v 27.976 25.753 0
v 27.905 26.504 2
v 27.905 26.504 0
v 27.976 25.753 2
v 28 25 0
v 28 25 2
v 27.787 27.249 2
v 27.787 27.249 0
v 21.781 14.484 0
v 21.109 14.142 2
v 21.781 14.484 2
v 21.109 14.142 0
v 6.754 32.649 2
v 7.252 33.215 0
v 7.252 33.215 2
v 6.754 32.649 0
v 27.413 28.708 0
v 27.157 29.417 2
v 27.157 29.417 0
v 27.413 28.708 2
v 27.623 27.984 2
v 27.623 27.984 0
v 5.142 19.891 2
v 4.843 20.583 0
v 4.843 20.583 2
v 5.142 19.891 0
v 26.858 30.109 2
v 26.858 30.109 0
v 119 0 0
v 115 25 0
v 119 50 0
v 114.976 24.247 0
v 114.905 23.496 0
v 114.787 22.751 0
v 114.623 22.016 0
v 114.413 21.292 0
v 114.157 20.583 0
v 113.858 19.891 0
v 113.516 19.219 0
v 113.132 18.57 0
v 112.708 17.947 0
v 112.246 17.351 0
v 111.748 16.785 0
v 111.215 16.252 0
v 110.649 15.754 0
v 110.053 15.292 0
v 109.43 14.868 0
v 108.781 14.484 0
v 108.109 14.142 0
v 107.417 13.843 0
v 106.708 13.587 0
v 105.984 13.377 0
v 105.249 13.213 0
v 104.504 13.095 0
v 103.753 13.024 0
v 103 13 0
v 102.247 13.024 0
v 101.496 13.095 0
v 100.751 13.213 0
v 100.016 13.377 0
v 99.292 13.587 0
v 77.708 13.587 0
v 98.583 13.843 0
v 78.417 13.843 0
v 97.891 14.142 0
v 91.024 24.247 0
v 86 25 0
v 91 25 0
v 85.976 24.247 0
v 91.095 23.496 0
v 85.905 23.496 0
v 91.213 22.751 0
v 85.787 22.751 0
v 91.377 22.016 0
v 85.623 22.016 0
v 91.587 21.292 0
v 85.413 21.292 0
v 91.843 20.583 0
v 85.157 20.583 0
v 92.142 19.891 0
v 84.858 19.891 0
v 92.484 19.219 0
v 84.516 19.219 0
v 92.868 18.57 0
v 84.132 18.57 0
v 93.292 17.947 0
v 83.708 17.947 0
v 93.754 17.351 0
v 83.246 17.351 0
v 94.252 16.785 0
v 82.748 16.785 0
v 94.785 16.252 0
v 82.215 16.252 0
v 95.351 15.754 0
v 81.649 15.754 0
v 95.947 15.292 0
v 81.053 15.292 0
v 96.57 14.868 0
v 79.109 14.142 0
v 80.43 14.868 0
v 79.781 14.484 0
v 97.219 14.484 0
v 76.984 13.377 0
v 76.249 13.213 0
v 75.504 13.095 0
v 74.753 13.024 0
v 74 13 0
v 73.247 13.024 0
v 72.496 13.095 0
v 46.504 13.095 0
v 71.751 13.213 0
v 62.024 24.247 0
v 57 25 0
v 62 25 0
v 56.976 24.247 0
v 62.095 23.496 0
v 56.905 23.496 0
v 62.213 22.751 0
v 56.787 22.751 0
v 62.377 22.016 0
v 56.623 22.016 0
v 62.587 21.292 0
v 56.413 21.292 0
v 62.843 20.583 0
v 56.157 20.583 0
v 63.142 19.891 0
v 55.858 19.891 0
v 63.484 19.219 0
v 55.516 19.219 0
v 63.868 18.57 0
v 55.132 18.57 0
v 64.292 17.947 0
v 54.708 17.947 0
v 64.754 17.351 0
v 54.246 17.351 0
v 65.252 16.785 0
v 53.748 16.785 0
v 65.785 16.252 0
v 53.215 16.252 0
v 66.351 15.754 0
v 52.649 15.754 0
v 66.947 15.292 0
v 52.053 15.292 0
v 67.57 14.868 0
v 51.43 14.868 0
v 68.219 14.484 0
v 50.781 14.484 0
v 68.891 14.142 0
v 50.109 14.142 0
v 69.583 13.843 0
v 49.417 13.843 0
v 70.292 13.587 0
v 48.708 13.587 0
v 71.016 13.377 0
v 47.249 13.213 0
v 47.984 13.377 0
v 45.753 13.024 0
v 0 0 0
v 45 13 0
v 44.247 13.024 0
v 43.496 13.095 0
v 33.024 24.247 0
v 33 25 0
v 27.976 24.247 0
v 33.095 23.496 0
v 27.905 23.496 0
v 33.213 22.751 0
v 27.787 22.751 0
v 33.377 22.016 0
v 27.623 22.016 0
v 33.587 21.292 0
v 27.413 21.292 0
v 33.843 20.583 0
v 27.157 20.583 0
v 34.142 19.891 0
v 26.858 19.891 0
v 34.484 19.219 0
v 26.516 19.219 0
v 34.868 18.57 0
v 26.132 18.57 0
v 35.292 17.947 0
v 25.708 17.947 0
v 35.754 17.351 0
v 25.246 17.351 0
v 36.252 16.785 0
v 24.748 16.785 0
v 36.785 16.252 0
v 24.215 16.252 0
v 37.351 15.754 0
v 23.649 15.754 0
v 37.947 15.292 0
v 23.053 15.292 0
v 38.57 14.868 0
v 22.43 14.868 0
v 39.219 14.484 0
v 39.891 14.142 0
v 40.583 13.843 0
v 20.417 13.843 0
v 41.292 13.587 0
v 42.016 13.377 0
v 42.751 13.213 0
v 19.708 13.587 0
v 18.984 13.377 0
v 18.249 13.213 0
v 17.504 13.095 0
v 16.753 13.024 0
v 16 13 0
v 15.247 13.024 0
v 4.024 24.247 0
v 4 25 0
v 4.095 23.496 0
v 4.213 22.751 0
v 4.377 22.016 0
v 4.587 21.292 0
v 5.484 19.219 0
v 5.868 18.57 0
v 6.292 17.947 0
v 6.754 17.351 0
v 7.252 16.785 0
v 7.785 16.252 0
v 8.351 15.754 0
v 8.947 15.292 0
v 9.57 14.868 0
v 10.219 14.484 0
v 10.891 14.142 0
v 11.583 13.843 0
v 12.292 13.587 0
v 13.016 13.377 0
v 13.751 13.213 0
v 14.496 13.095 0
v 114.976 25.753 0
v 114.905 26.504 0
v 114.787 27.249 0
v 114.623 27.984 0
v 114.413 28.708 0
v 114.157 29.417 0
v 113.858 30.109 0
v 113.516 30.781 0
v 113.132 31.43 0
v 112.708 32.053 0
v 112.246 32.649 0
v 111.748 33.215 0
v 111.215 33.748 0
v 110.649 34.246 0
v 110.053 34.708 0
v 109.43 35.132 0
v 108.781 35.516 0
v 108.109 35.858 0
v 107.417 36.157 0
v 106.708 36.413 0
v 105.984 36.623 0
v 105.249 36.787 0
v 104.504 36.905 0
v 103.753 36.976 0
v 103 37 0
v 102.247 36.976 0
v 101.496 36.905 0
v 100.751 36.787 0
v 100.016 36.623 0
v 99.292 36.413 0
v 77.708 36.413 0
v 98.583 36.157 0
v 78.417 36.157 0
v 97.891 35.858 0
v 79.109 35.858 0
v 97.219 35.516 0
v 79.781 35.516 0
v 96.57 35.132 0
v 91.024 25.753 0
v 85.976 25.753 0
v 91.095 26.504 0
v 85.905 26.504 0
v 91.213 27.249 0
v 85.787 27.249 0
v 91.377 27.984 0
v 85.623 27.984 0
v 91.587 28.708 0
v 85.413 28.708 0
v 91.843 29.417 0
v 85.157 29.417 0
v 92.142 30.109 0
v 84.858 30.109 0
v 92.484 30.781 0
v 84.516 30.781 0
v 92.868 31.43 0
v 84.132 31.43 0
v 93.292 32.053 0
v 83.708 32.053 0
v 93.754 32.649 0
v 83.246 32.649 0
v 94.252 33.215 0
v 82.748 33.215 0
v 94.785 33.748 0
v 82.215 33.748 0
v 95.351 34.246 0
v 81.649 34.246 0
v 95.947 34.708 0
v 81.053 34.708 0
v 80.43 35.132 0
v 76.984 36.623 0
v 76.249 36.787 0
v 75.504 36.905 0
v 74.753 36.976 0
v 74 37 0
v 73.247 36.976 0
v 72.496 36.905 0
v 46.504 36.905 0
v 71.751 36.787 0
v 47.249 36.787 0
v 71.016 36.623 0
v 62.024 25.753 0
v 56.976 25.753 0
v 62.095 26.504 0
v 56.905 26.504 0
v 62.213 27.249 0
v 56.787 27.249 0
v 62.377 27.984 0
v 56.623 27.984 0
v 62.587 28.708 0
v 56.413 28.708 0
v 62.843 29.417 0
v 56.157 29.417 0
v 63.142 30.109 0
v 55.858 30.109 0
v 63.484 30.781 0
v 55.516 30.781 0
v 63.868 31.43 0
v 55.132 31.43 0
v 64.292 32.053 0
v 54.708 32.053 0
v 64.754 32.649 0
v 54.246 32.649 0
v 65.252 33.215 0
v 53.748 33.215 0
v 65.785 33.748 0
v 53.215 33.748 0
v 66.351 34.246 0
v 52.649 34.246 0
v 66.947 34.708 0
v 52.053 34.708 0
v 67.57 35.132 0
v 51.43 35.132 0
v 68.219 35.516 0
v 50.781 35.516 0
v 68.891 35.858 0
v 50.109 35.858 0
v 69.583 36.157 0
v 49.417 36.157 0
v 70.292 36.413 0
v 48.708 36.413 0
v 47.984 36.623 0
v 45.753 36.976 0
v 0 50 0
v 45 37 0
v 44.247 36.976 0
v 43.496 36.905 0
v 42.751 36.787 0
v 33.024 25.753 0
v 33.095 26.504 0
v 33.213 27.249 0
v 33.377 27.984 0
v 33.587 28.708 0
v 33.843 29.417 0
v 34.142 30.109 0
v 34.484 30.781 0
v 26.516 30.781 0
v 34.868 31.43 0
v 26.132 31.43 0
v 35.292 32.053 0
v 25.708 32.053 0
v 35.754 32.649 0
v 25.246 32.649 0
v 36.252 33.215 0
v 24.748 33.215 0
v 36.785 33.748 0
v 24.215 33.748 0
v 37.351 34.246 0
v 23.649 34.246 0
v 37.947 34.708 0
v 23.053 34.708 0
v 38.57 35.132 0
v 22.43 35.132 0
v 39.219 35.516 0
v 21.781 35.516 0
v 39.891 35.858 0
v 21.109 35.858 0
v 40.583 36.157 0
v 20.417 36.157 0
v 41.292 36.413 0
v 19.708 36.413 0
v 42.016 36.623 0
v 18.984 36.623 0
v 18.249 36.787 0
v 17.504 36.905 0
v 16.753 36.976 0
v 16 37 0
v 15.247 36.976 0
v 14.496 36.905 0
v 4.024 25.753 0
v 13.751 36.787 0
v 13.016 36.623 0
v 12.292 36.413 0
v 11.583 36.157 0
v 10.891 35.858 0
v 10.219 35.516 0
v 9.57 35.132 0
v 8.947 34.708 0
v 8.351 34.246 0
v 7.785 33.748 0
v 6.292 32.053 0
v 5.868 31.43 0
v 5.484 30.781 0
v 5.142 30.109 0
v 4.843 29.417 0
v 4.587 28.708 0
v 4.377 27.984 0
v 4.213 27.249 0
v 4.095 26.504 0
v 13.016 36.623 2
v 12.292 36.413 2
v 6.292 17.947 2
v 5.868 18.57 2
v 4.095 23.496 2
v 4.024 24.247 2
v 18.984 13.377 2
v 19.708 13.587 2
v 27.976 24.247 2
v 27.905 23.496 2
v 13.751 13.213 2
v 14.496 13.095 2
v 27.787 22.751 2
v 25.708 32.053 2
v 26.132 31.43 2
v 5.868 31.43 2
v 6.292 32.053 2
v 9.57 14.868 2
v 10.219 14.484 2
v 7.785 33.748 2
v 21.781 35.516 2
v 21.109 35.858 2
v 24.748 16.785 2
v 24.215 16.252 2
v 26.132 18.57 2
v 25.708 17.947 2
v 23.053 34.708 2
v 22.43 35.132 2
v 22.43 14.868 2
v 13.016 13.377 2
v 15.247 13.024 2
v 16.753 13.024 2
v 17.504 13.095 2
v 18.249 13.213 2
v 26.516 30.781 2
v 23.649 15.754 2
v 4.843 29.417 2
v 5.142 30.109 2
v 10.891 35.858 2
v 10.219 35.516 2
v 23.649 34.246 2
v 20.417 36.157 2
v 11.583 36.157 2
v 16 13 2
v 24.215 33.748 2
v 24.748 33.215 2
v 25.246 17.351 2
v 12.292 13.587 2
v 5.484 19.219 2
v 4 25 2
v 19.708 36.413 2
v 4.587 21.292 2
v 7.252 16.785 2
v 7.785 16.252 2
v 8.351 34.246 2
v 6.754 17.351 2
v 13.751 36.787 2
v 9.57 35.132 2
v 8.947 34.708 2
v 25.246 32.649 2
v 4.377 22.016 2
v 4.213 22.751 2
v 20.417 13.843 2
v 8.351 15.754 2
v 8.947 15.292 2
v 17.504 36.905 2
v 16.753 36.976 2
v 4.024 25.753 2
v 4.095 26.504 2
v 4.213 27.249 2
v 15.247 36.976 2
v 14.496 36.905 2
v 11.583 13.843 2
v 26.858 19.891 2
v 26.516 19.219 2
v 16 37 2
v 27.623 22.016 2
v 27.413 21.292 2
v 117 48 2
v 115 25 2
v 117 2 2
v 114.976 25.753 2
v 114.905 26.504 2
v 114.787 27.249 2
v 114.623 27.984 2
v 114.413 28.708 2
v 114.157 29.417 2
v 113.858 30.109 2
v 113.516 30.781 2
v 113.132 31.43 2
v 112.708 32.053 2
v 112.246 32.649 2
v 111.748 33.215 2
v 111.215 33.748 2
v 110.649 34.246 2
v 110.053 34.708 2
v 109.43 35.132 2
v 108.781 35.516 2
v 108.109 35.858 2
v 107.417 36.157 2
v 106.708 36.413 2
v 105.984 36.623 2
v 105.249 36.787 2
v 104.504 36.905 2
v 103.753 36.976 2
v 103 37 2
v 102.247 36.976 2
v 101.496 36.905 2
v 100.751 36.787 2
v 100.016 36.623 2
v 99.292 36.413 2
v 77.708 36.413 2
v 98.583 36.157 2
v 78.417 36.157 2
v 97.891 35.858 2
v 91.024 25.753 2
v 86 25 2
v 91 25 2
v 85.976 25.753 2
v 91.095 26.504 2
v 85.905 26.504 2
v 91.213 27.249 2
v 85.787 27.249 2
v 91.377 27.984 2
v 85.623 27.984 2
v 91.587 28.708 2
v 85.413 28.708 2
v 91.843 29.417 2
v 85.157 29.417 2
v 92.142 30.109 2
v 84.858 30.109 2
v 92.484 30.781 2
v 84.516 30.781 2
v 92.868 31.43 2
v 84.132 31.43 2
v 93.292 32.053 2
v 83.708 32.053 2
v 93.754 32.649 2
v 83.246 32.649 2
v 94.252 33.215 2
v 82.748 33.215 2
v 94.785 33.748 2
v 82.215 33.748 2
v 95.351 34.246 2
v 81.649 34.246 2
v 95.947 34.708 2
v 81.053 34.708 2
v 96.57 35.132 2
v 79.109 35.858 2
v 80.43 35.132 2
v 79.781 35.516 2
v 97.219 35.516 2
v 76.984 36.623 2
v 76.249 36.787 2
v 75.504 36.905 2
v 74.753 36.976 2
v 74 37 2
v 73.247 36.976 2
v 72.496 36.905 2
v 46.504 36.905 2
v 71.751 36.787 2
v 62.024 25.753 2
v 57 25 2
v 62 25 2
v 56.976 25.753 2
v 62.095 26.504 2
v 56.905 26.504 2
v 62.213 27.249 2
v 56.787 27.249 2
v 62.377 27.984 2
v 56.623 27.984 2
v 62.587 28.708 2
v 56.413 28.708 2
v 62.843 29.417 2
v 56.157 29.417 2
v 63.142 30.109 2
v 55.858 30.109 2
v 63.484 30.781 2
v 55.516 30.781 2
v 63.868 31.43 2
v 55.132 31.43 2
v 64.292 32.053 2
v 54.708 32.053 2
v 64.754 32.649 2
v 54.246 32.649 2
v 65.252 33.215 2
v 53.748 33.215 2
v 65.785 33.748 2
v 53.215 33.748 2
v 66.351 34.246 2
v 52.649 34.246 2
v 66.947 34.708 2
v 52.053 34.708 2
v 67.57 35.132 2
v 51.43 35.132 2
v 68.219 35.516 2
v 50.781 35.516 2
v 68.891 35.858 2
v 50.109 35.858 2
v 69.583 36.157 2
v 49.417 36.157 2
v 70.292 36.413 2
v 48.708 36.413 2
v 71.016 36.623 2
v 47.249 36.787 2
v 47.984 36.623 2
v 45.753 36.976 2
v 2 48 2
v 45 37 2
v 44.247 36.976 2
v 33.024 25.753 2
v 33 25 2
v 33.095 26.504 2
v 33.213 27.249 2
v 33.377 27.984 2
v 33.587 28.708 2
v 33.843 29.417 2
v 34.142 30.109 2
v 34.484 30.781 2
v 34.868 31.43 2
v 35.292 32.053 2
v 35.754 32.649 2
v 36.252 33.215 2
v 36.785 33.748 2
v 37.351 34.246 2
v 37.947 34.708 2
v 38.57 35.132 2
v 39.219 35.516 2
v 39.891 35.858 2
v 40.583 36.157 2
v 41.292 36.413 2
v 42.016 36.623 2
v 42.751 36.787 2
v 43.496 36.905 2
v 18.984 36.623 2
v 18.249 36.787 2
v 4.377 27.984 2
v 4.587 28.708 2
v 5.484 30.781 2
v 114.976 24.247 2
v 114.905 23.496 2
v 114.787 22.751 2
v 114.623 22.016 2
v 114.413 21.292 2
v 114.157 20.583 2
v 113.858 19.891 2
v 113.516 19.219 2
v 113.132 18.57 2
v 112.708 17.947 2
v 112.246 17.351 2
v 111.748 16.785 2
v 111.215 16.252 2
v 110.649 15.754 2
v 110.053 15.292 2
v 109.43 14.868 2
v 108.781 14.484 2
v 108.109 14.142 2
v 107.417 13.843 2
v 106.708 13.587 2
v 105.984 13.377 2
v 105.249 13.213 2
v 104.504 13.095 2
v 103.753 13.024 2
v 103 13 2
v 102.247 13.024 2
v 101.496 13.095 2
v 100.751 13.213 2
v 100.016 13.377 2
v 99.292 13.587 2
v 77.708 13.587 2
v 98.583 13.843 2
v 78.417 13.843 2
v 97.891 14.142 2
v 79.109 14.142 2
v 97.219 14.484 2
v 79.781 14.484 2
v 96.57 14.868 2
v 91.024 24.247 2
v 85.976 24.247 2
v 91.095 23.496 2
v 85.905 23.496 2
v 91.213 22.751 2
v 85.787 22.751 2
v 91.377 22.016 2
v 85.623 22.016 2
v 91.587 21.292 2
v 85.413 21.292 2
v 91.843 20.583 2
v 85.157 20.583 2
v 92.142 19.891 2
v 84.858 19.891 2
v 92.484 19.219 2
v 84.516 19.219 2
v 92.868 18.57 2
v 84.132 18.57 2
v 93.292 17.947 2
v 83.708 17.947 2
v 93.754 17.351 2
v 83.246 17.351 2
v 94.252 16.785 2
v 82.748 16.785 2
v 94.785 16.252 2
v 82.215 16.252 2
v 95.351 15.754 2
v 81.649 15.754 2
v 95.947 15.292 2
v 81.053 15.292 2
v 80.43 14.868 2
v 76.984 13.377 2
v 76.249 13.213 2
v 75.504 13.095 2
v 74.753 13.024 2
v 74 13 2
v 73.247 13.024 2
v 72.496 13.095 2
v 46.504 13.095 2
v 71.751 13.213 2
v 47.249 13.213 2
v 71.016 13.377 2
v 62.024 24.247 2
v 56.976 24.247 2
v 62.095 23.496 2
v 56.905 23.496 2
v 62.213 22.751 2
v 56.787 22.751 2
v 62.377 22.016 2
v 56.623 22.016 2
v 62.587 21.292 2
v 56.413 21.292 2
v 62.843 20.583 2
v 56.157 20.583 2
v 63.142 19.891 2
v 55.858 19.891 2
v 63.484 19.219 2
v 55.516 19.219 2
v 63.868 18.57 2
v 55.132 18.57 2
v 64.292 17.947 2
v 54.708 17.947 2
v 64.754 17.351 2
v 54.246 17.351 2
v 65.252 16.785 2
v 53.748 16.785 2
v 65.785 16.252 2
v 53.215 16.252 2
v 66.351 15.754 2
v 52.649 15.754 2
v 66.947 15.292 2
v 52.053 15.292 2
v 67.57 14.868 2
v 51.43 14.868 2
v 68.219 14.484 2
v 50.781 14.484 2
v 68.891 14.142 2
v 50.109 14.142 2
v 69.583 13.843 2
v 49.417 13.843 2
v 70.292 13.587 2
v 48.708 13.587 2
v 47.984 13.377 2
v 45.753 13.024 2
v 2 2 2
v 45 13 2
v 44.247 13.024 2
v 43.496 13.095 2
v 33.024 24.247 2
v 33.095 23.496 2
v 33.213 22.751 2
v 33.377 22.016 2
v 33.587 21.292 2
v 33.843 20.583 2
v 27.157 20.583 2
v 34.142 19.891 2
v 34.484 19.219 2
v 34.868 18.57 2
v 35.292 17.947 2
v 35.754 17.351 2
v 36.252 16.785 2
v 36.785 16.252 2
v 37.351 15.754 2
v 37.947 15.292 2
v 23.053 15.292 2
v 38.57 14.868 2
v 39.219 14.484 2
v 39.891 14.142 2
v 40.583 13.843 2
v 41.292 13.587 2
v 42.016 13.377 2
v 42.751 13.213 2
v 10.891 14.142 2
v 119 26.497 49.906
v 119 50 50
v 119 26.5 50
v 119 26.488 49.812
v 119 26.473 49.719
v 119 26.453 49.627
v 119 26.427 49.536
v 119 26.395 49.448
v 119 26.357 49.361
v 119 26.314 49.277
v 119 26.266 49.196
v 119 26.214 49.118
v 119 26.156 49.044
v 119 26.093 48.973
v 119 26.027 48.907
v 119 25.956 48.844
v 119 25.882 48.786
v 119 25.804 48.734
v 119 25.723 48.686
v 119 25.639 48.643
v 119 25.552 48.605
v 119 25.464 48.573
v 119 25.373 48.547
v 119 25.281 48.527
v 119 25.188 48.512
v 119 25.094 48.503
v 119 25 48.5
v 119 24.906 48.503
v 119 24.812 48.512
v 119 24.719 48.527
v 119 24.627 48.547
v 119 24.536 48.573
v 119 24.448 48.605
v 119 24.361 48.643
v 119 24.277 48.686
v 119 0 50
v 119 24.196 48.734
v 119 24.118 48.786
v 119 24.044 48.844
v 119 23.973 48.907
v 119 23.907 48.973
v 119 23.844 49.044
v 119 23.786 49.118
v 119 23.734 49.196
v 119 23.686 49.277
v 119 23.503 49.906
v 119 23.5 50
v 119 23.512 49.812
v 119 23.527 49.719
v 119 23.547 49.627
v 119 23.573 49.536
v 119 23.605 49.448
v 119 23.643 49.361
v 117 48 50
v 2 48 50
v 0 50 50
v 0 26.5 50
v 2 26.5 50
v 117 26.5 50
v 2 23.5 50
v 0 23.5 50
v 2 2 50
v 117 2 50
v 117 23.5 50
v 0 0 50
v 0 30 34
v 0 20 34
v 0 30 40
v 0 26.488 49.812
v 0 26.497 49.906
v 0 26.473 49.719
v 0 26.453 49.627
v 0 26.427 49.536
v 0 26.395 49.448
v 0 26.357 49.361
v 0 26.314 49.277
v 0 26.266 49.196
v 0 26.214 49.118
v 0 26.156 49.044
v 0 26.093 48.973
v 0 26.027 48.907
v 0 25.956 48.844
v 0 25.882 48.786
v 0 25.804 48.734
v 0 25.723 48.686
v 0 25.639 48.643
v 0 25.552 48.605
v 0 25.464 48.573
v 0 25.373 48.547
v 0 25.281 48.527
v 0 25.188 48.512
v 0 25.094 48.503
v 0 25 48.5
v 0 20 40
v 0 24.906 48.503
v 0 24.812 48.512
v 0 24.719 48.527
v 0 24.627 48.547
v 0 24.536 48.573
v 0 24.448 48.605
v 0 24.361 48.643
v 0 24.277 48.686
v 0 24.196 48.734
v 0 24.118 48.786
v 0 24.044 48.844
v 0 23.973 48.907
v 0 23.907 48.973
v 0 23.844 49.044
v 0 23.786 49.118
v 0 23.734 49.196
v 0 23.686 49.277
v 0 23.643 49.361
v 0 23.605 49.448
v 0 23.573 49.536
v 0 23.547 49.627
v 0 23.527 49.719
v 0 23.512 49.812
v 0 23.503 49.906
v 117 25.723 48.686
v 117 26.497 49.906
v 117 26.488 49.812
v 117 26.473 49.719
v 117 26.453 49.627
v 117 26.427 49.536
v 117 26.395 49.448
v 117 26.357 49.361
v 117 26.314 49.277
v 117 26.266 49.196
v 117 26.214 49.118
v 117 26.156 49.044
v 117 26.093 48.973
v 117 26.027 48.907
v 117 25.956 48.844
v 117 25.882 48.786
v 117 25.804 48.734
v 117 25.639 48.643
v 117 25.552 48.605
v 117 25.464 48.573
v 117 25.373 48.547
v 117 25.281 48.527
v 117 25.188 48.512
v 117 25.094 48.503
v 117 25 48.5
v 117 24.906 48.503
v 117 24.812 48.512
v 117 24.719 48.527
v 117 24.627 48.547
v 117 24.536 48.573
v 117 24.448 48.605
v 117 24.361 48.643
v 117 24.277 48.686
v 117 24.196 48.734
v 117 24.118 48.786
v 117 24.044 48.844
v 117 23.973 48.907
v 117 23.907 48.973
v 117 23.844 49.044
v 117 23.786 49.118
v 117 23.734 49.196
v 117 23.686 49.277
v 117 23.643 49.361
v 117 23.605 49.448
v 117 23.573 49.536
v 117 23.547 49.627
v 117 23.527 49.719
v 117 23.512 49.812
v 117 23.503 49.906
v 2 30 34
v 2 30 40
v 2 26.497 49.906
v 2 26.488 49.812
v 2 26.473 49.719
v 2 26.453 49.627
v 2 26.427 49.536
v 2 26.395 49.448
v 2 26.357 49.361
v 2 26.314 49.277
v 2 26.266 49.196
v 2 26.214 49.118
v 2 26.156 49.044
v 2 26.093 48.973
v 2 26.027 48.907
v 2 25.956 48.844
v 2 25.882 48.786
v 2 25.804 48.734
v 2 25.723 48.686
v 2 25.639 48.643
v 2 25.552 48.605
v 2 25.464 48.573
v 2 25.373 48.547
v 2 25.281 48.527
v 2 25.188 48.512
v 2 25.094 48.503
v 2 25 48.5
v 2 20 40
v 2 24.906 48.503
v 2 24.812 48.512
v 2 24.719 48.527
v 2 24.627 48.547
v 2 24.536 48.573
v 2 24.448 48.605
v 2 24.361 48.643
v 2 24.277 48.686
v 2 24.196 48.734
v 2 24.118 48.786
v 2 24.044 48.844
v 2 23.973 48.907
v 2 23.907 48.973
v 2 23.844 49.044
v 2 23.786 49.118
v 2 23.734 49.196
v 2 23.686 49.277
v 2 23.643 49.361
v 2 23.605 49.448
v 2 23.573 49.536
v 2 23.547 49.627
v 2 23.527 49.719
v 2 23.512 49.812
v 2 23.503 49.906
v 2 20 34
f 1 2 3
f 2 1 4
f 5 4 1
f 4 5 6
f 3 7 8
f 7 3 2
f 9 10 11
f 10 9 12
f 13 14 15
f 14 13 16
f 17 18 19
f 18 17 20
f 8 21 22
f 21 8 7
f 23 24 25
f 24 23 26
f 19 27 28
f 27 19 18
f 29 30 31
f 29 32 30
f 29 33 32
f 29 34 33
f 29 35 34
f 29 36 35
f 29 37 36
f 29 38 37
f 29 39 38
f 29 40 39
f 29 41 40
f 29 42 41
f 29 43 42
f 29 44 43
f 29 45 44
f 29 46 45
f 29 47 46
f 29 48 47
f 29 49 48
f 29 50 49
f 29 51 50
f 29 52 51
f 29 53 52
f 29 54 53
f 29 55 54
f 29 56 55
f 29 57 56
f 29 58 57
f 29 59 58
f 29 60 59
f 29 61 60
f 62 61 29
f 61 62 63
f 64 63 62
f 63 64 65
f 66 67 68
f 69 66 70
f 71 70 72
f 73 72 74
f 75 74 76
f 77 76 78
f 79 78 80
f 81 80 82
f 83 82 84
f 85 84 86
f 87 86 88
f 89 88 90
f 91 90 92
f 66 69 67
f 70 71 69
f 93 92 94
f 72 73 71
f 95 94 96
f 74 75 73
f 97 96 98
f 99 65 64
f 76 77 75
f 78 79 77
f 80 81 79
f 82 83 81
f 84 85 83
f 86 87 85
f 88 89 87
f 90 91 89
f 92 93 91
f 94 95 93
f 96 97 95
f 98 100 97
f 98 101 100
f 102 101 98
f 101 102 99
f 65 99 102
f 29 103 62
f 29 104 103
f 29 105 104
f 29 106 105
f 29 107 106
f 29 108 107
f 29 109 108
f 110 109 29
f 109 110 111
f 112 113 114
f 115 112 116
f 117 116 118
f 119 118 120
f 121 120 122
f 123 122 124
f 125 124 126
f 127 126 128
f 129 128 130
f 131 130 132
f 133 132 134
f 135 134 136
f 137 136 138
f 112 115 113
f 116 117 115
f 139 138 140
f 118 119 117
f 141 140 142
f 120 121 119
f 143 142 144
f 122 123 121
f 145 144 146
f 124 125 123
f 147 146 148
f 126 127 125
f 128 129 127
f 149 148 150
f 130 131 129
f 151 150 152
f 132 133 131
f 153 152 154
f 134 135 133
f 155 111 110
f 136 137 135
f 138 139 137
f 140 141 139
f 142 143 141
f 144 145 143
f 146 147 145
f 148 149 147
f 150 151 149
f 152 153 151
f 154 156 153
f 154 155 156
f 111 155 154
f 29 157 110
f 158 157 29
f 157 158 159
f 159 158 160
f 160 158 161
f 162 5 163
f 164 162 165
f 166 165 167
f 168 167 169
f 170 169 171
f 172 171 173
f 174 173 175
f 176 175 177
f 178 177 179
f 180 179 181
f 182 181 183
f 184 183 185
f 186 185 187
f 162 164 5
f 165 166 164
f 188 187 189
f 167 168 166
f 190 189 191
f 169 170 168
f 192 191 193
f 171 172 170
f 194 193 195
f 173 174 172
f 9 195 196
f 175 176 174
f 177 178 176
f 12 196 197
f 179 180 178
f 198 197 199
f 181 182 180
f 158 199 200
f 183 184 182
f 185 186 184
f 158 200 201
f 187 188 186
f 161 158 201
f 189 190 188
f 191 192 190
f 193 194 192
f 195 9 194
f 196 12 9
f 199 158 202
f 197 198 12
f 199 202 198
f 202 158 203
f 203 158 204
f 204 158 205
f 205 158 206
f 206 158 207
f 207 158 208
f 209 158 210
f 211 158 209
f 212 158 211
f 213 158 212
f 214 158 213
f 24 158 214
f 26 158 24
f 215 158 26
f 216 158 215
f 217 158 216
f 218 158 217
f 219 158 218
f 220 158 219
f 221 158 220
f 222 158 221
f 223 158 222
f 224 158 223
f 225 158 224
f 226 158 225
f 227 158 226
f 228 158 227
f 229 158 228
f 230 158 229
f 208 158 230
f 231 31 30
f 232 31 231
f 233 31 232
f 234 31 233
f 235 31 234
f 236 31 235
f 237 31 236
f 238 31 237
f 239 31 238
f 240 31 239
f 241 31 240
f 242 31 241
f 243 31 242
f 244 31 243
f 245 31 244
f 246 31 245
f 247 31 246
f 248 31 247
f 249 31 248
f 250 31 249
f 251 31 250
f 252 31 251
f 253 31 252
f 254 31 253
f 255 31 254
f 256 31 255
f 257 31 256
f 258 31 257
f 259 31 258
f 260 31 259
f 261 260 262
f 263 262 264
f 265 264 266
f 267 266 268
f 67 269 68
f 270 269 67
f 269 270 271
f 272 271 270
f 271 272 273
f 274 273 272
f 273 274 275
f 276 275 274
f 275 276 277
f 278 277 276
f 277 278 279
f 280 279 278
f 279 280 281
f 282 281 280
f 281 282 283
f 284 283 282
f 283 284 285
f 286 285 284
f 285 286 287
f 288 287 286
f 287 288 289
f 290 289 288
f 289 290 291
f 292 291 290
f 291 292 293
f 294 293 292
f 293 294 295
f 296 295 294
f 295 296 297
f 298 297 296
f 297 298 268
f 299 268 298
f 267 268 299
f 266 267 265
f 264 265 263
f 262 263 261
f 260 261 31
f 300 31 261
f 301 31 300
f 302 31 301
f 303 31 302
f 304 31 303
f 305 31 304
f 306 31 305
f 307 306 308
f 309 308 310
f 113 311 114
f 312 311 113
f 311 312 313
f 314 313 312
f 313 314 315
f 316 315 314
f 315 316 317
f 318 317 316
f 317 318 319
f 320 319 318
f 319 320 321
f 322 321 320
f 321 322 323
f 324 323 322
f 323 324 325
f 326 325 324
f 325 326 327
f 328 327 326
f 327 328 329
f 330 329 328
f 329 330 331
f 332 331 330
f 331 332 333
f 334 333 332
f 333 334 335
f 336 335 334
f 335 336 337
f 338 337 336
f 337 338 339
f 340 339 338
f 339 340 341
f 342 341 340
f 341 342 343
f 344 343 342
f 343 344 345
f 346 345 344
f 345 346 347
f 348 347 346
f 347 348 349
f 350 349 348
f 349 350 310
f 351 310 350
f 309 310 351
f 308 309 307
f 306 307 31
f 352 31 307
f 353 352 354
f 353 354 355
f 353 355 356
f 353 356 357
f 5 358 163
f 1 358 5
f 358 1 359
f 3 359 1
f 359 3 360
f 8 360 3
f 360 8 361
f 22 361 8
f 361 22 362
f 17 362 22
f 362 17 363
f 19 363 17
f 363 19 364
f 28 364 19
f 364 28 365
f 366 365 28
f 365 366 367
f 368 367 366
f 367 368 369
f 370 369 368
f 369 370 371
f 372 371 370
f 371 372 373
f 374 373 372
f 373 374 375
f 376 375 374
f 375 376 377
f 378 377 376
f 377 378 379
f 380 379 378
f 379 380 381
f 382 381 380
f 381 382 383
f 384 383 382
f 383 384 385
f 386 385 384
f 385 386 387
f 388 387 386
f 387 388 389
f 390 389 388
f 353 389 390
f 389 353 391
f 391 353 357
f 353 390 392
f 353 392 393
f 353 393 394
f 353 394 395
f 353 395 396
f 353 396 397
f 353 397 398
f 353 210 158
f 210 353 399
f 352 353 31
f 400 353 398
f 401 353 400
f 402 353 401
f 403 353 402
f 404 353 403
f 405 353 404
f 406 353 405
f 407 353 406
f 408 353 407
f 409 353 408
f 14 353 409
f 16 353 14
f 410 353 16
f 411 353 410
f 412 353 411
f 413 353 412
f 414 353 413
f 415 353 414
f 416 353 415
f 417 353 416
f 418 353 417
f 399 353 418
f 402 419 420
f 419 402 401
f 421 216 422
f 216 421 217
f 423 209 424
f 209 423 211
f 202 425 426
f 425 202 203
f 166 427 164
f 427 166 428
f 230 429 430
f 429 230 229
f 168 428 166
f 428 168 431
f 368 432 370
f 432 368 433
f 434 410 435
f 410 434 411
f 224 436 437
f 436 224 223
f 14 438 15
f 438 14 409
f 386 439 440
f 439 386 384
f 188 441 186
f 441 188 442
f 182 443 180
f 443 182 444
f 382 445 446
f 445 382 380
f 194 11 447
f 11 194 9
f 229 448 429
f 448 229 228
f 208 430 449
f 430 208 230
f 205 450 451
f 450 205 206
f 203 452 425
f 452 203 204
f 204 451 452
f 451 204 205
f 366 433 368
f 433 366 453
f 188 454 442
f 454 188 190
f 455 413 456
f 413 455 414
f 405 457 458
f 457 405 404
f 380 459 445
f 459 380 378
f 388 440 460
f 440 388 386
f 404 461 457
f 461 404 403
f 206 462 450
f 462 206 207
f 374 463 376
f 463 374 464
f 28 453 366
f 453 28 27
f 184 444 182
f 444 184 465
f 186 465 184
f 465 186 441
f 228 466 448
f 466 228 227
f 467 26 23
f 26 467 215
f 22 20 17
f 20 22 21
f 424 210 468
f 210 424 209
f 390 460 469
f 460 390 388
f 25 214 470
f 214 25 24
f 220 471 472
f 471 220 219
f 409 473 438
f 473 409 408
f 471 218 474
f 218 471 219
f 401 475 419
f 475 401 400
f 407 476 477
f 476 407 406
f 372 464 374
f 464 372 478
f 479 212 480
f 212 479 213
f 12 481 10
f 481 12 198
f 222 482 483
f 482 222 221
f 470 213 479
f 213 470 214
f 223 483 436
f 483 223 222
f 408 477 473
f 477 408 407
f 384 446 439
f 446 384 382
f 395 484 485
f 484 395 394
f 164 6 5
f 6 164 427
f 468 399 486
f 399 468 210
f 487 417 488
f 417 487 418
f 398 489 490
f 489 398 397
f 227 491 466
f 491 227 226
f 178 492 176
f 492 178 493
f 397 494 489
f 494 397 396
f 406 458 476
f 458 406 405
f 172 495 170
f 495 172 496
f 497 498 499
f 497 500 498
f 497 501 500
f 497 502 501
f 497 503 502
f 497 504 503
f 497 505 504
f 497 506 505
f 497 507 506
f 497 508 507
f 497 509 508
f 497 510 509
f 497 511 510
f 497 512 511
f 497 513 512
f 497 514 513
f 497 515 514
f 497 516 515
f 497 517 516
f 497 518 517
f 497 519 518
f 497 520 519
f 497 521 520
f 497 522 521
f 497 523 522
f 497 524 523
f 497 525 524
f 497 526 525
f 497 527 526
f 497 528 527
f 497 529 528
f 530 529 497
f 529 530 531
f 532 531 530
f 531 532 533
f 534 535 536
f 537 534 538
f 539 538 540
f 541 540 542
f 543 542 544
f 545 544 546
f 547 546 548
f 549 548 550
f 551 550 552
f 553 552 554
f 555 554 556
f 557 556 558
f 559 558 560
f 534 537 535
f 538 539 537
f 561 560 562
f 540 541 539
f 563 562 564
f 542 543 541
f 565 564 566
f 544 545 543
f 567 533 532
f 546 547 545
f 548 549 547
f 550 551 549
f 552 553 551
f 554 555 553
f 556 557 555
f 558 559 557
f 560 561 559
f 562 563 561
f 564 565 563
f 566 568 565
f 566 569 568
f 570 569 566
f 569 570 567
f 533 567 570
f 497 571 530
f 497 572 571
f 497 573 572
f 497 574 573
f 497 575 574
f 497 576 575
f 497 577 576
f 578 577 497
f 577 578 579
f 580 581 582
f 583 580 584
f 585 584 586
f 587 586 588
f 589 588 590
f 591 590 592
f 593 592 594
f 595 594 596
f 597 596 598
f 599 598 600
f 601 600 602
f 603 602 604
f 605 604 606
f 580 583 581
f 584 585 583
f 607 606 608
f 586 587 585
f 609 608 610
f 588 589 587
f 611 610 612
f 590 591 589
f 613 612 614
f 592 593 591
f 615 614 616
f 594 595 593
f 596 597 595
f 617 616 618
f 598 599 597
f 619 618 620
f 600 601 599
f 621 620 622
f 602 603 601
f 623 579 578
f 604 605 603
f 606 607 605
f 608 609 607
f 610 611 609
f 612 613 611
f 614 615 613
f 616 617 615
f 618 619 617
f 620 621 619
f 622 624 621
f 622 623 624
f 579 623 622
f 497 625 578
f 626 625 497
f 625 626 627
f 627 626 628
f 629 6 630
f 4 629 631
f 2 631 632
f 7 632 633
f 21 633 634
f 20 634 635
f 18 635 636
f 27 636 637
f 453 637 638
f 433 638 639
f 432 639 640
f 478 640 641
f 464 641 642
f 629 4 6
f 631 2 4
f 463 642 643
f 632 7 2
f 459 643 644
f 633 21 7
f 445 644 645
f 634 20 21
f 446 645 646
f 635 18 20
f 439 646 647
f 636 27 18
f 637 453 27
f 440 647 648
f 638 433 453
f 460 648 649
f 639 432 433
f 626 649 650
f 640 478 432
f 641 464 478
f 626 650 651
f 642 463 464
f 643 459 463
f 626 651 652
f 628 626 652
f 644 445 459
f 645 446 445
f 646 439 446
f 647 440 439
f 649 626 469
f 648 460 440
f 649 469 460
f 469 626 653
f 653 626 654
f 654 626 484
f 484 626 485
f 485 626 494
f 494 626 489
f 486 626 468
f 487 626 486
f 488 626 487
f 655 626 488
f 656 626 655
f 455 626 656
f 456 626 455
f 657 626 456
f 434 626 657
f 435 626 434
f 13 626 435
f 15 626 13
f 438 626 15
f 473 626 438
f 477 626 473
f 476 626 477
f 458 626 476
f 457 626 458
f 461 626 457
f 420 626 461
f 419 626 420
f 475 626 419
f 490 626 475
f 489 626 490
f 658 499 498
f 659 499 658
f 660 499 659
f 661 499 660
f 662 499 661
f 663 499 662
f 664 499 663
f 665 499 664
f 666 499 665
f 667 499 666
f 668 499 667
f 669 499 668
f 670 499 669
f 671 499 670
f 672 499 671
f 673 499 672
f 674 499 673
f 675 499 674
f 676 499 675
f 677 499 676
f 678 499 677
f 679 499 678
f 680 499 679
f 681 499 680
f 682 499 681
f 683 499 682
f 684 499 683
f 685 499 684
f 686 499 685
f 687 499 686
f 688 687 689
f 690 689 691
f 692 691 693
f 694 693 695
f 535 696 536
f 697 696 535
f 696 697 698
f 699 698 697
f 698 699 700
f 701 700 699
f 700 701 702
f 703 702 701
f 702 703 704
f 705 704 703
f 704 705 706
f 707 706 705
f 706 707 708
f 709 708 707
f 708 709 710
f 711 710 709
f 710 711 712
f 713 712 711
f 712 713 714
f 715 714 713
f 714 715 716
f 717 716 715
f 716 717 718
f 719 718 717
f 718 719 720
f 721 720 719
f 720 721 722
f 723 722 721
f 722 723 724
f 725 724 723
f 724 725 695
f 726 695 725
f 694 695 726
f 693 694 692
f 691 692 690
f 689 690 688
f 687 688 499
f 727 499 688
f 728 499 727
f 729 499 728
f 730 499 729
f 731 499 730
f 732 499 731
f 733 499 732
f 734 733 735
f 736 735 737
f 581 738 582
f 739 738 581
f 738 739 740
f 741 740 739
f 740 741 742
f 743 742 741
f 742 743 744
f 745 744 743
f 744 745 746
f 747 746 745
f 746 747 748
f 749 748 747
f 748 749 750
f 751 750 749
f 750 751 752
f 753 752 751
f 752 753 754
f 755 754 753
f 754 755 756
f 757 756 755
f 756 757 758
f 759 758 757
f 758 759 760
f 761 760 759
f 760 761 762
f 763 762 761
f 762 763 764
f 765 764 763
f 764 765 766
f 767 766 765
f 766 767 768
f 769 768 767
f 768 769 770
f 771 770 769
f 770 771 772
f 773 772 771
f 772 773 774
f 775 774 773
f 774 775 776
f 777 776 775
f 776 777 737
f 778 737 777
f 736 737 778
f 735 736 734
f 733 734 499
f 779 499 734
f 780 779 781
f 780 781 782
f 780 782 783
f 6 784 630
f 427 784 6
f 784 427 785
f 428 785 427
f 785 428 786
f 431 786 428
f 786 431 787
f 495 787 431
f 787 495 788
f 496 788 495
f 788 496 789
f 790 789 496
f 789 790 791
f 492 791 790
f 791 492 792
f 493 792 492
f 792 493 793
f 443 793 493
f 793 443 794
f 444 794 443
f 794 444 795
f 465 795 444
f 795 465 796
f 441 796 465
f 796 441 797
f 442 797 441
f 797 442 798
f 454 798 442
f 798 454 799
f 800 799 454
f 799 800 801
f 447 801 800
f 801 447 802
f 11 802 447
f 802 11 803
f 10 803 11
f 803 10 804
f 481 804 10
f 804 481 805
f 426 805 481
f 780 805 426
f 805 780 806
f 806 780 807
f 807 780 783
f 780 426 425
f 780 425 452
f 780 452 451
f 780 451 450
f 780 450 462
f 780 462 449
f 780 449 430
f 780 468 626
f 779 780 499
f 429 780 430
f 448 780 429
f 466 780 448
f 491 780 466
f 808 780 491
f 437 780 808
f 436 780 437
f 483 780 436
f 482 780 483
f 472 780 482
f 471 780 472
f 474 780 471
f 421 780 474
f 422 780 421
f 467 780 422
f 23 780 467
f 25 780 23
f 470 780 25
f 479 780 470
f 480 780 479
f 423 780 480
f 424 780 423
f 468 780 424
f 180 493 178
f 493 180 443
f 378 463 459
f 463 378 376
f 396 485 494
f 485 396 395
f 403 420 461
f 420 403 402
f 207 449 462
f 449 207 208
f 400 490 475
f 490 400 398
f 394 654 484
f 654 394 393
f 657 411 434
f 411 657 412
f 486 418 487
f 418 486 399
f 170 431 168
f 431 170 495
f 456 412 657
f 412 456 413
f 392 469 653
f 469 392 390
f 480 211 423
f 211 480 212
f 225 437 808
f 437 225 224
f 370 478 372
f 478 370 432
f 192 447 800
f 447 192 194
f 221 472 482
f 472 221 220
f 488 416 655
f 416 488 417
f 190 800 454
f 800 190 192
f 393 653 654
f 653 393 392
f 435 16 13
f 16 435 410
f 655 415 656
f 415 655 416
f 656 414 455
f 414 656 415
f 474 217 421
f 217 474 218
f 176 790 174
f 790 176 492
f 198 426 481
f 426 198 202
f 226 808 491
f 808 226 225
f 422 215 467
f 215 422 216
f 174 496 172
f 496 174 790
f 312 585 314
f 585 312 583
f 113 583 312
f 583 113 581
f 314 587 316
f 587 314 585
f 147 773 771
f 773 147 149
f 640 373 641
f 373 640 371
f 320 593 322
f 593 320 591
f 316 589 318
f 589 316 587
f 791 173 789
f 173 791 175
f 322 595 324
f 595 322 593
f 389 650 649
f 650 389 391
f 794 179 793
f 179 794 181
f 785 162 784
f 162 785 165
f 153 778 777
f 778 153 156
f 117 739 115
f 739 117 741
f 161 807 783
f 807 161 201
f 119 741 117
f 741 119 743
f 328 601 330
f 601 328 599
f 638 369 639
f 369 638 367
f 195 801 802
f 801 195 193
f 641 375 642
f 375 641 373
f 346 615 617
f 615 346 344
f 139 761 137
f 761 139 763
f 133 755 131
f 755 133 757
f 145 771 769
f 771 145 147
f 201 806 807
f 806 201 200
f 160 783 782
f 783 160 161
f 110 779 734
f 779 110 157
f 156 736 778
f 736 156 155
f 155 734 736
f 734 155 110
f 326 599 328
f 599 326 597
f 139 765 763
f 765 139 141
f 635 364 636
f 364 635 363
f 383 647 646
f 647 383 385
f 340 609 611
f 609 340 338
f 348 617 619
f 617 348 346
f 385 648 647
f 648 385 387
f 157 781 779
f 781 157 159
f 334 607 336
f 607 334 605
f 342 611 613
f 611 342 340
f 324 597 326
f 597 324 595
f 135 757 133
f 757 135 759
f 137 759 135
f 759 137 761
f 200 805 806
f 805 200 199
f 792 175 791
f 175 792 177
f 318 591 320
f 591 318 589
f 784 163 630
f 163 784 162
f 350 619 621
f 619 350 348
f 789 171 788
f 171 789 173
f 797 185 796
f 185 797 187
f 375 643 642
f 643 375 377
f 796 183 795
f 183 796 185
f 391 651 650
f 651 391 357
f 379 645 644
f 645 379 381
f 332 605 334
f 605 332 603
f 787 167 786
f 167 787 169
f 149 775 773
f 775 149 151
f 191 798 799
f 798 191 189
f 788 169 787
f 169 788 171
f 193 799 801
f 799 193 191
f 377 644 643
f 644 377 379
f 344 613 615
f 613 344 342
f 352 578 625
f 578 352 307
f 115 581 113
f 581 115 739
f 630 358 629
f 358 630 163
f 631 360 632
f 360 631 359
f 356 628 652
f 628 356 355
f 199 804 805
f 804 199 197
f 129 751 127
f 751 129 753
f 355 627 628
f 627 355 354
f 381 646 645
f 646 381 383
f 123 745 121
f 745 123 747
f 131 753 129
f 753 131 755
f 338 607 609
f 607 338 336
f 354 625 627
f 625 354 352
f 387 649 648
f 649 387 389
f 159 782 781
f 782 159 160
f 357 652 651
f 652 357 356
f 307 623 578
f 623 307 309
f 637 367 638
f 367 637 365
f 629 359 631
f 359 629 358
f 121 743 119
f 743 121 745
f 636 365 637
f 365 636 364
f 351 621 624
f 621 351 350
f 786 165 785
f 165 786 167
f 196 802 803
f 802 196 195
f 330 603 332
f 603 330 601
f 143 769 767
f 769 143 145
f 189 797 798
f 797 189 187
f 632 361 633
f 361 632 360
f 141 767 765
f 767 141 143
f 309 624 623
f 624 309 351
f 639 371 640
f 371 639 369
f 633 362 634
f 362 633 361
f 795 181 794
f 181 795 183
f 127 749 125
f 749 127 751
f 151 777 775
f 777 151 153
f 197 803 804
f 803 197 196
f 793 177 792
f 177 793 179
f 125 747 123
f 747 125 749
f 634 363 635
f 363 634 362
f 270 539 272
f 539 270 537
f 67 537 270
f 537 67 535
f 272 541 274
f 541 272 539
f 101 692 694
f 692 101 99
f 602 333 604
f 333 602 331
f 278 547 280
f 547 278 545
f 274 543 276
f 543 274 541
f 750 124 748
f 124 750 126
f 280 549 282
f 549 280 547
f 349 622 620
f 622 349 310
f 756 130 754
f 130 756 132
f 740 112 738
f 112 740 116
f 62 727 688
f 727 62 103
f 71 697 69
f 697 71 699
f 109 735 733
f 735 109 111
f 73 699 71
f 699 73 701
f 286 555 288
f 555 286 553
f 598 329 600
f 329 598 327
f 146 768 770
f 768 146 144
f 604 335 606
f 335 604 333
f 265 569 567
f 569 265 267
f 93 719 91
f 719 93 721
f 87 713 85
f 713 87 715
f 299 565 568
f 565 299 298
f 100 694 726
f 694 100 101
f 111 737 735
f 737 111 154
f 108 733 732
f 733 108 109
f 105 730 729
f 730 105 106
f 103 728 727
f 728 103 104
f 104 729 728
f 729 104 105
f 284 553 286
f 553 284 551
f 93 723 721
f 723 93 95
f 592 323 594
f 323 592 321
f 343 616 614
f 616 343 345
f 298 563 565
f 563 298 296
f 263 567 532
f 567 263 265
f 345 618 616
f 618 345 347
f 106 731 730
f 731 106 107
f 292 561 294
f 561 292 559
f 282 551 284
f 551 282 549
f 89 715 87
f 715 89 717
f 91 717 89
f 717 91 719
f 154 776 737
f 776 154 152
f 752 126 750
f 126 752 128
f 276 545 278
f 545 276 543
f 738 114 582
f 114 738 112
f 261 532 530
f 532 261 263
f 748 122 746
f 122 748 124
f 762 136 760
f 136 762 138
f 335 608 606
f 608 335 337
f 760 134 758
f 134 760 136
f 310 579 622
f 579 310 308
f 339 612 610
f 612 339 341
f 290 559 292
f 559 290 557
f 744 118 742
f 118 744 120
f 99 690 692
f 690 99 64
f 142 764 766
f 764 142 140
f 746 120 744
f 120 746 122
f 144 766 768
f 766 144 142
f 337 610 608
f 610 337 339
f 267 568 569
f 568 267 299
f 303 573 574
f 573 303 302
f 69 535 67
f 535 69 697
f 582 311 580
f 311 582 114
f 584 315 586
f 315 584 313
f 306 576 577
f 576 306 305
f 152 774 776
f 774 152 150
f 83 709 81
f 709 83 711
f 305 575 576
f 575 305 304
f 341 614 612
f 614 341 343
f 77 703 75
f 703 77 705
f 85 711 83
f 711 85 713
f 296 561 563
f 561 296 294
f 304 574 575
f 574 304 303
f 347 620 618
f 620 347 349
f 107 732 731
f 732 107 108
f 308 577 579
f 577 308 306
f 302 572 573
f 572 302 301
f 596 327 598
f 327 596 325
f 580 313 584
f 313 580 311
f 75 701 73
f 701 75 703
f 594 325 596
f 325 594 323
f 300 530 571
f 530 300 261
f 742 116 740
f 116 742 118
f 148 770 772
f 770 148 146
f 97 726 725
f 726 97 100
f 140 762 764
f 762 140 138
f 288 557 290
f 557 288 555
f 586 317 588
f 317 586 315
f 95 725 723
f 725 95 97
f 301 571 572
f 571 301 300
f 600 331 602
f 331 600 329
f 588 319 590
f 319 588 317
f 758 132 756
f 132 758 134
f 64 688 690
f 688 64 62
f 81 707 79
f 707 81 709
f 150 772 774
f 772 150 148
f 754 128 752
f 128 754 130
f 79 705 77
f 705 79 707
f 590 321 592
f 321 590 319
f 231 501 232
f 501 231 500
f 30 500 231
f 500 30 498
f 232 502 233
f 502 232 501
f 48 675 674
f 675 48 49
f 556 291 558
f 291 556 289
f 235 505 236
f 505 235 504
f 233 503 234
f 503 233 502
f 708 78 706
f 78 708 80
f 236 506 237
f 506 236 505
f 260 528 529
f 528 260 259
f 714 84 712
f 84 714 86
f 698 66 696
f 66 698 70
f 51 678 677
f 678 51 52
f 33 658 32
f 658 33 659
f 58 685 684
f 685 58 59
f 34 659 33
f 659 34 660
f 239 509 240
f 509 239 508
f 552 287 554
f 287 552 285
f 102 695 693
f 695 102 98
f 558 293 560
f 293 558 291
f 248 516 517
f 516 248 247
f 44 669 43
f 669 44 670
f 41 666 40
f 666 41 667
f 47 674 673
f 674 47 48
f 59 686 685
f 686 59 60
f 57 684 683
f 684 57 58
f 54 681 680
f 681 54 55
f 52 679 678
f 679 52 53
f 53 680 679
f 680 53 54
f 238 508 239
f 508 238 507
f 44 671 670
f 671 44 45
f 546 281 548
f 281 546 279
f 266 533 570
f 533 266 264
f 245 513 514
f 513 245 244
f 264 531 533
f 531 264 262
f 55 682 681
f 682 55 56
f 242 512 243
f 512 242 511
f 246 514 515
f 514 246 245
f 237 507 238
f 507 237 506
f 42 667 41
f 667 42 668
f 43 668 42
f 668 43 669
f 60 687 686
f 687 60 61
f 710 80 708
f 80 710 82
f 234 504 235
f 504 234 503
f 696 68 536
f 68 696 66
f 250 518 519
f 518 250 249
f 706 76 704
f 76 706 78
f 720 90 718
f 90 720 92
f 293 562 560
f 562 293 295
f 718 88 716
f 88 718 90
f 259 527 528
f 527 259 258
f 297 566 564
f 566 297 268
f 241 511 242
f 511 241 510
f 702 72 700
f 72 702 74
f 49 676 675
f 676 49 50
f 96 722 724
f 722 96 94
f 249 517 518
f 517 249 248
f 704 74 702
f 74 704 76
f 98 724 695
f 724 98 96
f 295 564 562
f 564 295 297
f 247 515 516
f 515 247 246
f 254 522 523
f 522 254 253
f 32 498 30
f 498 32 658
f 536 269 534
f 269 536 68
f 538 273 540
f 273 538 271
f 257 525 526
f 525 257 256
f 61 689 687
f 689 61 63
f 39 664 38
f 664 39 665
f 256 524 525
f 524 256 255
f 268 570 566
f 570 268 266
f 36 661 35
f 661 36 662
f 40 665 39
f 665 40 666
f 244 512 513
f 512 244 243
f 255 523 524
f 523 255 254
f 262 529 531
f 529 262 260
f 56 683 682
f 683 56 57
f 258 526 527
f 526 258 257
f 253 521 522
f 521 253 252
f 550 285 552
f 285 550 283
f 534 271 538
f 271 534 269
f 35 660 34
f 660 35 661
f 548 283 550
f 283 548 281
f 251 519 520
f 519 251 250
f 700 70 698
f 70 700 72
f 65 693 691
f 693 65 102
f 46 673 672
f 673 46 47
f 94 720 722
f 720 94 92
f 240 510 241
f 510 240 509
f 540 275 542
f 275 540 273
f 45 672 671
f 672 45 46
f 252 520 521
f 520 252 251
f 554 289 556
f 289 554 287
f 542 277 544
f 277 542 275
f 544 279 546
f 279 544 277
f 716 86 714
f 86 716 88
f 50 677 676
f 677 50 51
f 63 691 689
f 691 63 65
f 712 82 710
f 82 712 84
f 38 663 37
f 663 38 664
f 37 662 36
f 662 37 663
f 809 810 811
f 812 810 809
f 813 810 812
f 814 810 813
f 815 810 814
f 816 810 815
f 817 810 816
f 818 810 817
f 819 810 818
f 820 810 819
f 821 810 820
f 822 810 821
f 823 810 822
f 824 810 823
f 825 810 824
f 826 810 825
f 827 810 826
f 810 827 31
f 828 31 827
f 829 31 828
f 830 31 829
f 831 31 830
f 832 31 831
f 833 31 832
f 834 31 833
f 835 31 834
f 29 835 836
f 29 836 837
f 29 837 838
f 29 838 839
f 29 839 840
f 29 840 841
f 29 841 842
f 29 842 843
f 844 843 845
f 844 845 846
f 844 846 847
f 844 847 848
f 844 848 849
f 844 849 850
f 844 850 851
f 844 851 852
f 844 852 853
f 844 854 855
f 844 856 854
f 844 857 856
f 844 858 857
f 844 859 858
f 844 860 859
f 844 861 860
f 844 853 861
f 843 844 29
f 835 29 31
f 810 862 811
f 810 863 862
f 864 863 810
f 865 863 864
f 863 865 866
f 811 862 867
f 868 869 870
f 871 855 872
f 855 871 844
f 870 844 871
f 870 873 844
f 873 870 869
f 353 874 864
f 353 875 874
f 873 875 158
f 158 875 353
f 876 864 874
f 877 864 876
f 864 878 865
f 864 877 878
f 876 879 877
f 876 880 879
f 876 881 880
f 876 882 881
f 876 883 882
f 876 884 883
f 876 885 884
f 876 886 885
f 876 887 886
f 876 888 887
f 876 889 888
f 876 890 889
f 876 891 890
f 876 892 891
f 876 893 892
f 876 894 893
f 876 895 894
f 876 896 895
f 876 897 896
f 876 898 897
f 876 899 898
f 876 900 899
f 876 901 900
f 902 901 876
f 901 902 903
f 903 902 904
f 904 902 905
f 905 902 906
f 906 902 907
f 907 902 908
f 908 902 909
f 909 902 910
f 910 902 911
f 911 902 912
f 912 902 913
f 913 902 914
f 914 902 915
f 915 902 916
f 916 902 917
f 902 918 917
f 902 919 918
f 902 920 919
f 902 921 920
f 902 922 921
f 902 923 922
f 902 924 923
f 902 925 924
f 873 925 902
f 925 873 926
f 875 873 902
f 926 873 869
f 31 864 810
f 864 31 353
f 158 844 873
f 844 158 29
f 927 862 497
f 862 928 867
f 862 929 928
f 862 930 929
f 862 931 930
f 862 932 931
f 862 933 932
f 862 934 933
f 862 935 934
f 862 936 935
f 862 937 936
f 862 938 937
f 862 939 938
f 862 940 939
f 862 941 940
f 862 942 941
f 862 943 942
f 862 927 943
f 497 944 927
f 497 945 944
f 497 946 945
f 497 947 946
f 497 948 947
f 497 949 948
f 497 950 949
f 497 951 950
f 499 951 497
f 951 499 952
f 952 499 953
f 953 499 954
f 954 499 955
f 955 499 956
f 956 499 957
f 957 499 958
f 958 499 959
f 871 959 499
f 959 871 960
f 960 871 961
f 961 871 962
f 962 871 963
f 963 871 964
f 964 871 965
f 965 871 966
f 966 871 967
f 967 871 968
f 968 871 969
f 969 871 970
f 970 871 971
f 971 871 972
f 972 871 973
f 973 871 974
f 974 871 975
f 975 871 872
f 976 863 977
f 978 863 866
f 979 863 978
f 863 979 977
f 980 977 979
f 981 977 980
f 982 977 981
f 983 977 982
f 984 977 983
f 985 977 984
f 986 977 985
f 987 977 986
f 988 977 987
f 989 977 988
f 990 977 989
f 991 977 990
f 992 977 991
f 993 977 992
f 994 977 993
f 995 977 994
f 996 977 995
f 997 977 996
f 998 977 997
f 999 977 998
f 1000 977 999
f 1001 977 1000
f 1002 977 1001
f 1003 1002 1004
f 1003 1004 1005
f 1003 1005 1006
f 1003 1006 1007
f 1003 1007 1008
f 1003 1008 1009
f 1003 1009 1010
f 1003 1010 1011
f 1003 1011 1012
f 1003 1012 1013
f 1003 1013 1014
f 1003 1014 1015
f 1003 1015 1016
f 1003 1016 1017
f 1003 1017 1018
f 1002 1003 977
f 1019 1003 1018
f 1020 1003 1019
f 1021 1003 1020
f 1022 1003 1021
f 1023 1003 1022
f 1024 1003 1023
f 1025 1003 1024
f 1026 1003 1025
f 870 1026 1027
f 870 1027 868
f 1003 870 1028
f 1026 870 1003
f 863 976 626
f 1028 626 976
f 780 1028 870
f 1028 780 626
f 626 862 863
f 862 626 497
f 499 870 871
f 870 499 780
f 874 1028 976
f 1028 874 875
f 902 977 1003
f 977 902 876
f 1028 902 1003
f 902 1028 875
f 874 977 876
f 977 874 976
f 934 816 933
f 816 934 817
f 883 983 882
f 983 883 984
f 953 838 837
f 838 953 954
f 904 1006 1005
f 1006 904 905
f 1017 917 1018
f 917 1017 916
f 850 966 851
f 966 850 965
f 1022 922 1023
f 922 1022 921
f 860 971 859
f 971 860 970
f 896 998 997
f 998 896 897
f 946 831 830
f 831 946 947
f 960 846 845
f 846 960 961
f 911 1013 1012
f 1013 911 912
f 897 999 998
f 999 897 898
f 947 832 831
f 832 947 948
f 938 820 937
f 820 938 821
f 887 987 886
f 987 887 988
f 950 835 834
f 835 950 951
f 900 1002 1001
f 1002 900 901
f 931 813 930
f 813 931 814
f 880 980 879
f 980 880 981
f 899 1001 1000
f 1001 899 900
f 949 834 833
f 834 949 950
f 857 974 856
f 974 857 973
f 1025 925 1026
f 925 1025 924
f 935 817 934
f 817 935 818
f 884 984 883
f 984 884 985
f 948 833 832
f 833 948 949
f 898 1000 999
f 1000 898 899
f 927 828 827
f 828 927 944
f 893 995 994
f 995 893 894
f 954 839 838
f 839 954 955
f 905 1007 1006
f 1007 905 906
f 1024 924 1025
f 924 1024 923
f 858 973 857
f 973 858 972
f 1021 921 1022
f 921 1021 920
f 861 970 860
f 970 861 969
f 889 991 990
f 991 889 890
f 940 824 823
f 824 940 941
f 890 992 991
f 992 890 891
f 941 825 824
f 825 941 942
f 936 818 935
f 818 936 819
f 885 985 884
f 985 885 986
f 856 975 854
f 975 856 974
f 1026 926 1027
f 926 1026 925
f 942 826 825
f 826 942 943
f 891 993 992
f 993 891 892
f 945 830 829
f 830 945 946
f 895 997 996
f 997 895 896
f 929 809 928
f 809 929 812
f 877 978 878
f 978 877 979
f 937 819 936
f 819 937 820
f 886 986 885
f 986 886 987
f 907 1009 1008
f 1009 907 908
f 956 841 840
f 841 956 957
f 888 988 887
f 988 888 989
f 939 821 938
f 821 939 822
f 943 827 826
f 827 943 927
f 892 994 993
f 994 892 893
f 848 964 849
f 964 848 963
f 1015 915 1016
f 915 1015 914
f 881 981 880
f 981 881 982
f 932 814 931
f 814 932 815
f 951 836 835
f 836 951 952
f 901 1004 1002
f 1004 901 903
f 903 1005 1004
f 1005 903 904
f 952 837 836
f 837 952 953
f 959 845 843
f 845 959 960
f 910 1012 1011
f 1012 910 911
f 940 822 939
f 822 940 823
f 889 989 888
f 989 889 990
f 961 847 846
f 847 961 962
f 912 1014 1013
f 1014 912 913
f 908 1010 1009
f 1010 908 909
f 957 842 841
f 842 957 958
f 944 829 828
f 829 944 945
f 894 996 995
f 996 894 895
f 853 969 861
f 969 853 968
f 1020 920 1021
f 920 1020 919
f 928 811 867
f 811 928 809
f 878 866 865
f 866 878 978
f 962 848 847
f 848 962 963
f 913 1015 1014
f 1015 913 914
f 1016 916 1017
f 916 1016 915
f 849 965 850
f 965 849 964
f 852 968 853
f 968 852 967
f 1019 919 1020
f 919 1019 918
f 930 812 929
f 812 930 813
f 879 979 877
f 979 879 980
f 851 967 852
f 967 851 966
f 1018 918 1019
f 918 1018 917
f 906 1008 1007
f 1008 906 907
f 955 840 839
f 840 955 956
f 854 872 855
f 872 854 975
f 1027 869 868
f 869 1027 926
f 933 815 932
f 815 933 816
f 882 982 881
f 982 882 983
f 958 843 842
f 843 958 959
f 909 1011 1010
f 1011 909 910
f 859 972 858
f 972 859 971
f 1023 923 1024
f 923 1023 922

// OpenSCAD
$fn=100;
// wall
$ws=2;
// box
$by=50;
$bx=119;
$bz=50;
// knops
$kd=24;
$kr=$kd/2;
// cable
$cx=6;
$cy=10;

difference() {
    cube([$bx,$by,$bz]);
    translate([$ws,$ws,$ws])
    cube([$bx-2*$ws,$by-2*$ws,$bz-$ws]);
    translate([2*$ws,0,0])
    union() {
        for(i=[0:3]) {
            $x=$kr+(i*($kd+5));
            echo($x);
            translate([$x,$by/2,0])
            cylinder(h=$ws, d=$kd);
        }
    }
    // Power cable
    translate([$ws,($by-$cy)/2,$bz-$cx-10])
    rotate([0,-90,0])
    cube([$cx,$cy,$ws]);
    // Closing
    translate([0,$by/2,$bz])
    rotate([0,90,0])
    cylinder(h=$bx,d=3);
}
